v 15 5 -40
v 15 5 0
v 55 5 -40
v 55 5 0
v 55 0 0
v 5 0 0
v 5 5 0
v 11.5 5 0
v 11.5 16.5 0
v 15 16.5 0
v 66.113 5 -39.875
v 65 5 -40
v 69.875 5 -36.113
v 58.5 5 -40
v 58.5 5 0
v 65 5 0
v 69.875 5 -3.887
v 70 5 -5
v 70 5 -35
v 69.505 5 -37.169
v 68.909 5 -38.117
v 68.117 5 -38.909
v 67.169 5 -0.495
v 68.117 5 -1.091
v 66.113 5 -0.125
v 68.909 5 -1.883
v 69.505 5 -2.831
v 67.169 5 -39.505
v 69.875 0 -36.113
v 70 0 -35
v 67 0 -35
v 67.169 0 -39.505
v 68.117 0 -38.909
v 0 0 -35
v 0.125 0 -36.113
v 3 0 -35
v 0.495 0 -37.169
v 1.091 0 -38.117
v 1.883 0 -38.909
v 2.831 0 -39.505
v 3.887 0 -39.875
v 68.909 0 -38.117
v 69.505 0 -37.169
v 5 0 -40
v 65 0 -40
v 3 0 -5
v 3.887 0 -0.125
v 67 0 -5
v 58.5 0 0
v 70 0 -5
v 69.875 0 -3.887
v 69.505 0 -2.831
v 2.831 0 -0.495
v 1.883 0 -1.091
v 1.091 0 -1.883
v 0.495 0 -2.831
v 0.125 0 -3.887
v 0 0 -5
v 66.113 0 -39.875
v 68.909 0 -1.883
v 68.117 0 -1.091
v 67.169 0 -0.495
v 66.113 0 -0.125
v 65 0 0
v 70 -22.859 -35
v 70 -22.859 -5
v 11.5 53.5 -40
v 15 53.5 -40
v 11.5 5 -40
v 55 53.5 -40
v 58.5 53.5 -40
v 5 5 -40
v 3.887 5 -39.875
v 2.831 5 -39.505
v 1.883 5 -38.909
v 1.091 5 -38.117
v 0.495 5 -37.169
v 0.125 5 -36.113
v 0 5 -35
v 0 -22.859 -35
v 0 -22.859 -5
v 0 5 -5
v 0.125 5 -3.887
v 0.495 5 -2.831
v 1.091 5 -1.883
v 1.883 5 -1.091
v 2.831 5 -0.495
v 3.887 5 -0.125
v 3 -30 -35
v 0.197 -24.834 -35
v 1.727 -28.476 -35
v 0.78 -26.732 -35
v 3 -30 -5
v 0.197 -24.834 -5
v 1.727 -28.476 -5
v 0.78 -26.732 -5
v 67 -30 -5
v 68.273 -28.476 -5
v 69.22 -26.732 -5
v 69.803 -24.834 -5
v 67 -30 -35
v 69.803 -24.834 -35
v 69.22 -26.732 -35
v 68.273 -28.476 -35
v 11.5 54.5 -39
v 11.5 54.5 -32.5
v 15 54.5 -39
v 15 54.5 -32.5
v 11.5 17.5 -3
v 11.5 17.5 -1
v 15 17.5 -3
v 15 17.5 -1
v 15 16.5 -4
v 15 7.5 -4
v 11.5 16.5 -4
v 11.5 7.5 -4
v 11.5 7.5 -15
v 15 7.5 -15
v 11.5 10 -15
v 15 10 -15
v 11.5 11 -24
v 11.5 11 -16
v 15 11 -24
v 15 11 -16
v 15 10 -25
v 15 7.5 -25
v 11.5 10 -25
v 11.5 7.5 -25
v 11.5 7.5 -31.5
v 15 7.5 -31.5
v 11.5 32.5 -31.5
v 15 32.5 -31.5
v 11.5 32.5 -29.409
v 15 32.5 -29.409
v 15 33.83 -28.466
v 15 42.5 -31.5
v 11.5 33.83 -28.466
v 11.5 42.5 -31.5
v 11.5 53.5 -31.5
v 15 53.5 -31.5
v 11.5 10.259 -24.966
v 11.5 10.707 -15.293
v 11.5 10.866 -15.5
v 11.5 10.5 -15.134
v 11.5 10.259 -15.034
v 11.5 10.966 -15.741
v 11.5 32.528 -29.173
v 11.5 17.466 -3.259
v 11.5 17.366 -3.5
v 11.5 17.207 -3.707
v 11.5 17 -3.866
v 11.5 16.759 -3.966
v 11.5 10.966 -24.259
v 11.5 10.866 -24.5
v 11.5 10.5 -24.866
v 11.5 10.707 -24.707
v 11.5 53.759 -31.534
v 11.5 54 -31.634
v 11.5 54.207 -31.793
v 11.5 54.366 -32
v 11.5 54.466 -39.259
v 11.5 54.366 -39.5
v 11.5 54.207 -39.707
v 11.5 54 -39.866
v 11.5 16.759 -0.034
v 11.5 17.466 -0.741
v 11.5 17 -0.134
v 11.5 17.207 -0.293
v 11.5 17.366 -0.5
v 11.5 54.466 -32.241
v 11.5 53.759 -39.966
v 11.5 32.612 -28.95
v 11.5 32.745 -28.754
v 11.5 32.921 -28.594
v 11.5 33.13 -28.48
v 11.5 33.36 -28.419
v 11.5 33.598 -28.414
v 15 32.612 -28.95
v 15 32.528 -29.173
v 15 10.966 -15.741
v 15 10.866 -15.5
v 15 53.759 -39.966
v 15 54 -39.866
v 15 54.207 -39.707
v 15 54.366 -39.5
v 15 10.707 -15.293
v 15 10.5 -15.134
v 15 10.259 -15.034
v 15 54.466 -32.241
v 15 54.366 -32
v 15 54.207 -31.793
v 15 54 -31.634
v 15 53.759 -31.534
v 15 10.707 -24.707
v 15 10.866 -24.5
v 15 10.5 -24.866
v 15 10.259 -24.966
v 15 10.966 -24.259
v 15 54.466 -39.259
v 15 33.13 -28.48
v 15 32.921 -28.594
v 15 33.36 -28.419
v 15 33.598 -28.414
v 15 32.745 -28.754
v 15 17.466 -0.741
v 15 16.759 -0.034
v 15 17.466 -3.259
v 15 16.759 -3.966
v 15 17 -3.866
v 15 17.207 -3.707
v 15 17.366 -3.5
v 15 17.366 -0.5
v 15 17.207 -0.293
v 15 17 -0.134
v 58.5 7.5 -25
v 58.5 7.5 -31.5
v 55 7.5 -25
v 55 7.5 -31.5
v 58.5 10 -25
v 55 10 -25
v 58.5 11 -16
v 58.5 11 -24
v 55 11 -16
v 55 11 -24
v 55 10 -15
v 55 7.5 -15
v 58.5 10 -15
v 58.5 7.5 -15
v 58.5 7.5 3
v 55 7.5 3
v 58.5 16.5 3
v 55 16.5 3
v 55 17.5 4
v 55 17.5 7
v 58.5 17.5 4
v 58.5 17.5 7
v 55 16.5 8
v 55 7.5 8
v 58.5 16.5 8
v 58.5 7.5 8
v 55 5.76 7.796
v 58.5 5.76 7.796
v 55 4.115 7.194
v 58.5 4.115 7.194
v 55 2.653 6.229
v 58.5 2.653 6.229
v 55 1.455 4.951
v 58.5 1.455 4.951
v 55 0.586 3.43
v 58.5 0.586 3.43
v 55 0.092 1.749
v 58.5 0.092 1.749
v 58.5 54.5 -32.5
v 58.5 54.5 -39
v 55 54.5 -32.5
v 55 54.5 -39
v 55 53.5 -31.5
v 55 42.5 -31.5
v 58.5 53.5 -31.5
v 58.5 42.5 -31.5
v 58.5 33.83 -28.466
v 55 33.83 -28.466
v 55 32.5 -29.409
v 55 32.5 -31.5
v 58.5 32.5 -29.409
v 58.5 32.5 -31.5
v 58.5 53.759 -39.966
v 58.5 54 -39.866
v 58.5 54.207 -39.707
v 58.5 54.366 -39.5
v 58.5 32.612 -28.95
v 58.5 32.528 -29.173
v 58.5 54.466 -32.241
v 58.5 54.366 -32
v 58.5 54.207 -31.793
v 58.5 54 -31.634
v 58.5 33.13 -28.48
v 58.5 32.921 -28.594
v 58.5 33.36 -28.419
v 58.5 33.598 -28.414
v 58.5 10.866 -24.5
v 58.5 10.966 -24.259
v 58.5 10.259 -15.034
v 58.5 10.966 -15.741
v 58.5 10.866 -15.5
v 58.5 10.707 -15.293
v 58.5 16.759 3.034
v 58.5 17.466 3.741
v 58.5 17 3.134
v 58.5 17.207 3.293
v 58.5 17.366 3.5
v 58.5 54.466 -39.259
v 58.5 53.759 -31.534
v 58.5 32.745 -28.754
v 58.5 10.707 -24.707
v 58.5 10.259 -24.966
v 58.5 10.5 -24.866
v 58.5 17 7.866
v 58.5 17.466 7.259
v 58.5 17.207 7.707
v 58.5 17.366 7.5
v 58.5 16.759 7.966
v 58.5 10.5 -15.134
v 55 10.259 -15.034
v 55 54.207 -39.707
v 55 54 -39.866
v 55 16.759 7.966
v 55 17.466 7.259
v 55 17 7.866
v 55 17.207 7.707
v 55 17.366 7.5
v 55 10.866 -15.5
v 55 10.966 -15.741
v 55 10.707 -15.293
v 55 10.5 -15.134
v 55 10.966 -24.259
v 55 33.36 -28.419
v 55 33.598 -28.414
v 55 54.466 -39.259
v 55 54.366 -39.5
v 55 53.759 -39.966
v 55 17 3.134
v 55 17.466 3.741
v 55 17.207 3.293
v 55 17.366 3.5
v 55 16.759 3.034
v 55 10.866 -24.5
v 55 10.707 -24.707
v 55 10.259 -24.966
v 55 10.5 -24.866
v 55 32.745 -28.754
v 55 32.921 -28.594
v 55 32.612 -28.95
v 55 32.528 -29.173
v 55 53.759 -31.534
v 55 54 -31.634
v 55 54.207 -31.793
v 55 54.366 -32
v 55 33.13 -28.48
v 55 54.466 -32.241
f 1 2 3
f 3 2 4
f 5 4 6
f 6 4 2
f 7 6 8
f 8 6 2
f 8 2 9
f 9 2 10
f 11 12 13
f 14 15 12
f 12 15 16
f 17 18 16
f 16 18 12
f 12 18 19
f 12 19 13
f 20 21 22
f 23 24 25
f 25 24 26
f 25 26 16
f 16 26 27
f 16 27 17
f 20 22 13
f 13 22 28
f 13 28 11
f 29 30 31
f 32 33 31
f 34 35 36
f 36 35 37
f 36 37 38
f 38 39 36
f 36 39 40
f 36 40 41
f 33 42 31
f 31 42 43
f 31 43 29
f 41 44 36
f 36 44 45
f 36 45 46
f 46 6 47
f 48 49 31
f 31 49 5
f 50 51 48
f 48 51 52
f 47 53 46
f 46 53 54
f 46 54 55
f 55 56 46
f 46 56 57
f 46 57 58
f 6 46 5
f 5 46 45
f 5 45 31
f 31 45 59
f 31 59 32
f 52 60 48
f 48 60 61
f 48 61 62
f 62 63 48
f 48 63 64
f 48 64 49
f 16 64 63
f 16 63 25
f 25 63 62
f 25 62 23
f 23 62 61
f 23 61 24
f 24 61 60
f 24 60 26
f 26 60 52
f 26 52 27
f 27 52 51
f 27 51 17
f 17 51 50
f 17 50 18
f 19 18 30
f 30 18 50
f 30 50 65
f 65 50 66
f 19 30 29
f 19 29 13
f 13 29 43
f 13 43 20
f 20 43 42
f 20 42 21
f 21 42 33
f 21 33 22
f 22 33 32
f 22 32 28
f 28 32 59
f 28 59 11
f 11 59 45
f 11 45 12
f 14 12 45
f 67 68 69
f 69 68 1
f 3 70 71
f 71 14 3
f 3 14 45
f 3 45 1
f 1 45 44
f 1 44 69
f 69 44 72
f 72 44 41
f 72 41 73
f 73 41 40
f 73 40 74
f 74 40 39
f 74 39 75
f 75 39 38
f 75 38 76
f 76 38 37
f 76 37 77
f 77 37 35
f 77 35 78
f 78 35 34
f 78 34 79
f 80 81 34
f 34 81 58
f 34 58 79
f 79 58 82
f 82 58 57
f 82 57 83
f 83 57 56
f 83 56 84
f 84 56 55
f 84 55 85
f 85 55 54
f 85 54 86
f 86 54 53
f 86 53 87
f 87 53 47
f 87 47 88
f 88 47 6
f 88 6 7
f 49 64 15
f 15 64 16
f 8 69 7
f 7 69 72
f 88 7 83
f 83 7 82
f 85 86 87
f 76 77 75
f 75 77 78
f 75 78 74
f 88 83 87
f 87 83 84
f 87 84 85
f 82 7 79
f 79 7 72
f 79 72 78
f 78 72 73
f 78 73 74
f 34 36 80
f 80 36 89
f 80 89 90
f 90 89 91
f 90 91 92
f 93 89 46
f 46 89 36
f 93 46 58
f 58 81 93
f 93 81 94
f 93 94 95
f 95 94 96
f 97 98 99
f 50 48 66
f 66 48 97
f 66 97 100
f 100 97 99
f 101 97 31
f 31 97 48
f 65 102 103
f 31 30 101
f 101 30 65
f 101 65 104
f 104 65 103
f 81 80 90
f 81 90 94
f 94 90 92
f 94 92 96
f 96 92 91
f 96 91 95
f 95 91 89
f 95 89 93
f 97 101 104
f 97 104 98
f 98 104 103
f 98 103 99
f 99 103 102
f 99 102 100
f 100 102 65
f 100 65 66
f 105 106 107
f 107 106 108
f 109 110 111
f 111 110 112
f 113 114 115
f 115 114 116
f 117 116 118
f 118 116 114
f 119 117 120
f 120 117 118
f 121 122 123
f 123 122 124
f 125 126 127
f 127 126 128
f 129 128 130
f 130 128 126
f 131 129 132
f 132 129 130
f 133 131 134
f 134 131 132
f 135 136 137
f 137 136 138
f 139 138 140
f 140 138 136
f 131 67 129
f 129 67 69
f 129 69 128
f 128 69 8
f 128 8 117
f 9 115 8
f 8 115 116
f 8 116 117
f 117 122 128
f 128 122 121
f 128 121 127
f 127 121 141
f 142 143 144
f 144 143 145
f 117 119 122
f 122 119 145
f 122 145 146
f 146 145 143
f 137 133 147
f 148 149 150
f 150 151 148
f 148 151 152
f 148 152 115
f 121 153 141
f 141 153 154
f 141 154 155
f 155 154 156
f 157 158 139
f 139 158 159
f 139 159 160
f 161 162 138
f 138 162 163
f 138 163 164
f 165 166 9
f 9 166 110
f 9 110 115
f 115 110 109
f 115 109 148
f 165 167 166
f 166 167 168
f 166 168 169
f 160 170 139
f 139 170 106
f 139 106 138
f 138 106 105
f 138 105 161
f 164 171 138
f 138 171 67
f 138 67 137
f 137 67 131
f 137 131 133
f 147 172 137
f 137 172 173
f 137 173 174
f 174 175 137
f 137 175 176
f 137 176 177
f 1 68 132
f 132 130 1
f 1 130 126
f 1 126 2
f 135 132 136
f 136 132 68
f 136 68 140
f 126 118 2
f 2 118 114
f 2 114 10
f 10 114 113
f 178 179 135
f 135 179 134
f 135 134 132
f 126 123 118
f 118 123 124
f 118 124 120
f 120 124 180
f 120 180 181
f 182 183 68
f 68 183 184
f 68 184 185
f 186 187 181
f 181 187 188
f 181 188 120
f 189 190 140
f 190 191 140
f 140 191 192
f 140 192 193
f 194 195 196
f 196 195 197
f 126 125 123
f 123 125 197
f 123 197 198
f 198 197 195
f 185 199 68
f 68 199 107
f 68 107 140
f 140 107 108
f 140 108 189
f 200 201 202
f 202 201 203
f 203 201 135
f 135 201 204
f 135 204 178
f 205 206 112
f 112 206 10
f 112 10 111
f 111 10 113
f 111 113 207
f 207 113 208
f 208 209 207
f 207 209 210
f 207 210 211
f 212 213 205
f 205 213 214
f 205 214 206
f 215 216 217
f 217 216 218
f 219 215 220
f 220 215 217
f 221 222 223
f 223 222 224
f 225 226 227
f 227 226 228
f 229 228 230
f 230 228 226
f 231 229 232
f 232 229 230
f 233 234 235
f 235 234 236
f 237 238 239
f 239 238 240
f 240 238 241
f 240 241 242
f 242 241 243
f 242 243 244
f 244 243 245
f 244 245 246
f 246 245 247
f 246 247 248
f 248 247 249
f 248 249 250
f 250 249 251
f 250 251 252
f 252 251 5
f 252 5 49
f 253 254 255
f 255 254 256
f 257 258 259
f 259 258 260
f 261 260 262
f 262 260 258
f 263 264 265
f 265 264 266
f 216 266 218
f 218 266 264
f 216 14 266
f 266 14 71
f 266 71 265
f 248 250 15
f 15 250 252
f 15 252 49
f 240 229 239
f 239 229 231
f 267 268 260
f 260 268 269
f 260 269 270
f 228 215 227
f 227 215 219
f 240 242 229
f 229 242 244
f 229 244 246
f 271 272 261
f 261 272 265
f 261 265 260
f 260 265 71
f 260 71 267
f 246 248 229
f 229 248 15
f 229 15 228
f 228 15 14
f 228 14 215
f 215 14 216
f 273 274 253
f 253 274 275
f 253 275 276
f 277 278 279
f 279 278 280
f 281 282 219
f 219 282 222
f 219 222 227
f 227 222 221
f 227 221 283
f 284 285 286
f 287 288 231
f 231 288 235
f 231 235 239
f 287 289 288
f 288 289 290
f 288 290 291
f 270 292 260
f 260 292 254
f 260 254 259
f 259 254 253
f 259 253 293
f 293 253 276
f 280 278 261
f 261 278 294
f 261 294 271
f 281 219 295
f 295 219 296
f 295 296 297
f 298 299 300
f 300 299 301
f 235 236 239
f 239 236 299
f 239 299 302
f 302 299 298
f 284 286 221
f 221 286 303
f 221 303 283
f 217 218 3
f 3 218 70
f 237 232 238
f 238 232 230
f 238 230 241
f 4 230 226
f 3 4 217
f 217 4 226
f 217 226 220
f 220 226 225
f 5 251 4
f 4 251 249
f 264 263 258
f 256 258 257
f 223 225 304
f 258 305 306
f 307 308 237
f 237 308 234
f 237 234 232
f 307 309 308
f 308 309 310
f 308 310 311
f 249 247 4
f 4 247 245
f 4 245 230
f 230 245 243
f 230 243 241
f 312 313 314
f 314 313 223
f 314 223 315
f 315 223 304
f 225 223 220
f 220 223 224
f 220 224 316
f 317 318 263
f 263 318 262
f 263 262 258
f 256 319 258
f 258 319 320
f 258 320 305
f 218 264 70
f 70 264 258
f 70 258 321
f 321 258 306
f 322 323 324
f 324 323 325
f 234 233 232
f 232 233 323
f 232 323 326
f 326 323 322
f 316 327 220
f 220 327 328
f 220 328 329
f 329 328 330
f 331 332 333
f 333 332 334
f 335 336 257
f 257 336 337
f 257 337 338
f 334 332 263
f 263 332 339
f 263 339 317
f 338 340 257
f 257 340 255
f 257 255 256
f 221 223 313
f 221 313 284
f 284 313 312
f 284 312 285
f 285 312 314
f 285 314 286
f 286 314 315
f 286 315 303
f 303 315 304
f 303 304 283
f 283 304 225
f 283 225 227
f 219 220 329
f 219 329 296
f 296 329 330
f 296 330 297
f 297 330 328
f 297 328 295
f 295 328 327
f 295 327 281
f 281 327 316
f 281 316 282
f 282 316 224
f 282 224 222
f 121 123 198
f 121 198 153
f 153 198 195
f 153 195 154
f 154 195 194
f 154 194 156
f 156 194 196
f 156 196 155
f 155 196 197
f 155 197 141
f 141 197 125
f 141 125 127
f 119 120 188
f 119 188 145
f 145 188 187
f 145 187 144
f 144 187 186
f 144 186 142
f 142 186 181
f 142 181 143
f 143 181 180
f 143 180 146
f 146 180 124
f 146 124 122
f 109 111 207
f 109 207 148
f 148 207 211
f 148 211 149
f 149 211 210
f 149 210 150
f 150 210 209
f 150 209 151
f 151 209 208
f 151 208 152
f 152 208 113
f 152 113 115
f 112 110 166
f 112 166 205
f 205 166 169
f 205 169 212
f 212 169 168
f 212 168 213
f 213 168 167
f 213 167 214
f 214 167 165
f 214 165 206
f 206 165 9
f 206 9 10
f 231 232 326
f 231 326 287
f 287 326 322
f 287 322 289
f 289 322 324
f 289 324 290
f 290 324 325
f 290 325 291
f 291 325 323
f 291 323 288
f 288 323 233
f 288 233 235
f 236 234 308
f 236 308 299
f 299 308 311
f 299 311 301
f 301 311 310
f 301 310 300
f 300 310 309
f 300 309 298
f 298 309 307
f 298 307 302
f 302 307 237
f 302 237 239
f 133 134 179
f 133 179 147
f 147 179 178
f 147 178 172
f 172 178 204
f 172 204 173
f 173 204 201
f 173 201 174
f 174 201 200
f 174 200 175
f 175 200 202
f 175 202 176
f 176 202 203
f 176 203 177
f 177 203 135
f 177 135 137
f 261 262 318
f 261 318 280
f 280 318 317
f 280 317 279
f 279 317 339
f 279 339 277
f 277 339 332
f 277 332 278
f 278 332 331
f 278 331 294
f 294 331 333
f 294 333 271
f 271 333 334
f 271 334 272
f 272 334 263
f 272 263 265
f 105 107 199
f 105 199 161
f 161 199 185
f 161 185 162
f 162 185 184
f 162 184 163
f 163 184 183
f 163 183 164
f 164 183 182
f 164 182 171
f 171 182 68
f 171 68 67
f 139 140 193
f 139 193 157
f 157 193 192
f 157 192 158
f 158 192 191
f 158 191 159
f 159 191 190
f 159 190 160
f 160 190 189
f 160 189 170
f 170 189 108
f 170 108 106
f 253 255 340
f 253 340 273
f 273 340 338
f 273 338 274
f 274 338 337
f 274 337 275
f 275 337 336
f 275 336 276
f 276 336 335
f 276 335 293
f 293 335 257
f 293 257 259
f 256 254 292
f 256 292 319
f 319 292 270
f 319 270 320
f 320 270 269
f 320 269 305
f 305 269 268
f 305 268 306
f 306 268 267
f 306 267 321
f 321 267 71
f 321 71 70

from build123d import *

# Parameters (mm, degrees)
BOSS_EXTRUDE1_DEPTH = 5
SKETCH2_W           = 3
SKETCH2_H           = 30
BOSS_EXTRUDE2_DEPTH = 30
FILLET1_R           = 10
BOSS_EXTRUDE3_DEPTH = 3.5
BOSS_EXTRUDE4_DEPTH = 3.5
FILLET2_R           = 1


with BuildPart() as part:
    # Sketch1 → Boss-Extrude1 (new body)
    with BuildSketch(Plane(origin=(0, 0, 0), x_dir=(1, 0, 0), z_dir=(0, 1, 0))):
        with BuildLine():
            Line((5, 0), (65, 0))
            ThreePointArc((65, 0), (68.535533906, 1.464466094), (70, 5))
            Line((70, 5), (70, 35))
            ThreePointArc((70, 35), (68.535533906, 38.535533906), (65, 40))
            Line((65, 40), (5, 40))
            ThreePointArc((5, 40), (1.464466094, 38.535533906), (0, 35))
            Line((0, 35), (0, 5))
            ThreePointArc((0, 5), (1.464466094, 1.464466094), (5, 0))
        make_face()
    extrude(amount=BOSS_EXTRUDE1_DEPTH)

    # Sketch2 → Boss-Extrude2 (add)
    with BuildSketch(Plane.XZ):
        with Locations((1.5, -20)):
            Rectangle(SKETCH2_W, SKETCH2_H)
        with Locations((68.5, -20)):
            Rectangle(SKETCH2_W, SKETCH2_H)
    extrude(amount=BOSS_EXTRUDE2_DEPTH)

    # Fillet1
    # the kernel refuses this fillet: 10 mm, written as the material it takes off along each edge
    with BuildSketch(Plane(origin=(0, -30, -52.853571071), x_dir=(0, 1, 0), z_dir=(0, 0, 1))) as fillet1_piece_1:
        with BuildLine():
            CenterArc((7.141428429, -10), FILLET1_R, 90, 45.572995999)
            Line((0, -3), (-0.142828569, -2.86))
            ThreePointArc((-0.142828569, -2.86), (-0.2, -1.5), (-0.2, 0))
            Line((-0.2, 0), (0, 0.2))
            Line((0, 0.2), (7.141428429, 0.2))
            Line((7.141428429, 0.2), (7.141428429, 0))
        make_face()
    extrude(amount=65.707142143, mode=Mode.SUBTRACT)
    with BuildSketch(Plane(origin=(70, -30, -52.853571071), x_dir=(0, 1, 0), z_dir=(0, 0, 1))) as fillet1_piece_2:
        with BuildLine():
            CenterArc((7.141428429, 10), FILLET1_R, 224.427004001, 45.572995999)
            Line((0, 3), (-0.142828569, 2.86))
            ThreePointArc((-0.142828569, 2.86), (-0.2, 1.5), (-0.2, 0))
            Line((-0.2, 0), (0, -0.2))
            Line((0, -0.2), (7.141428429, -0.2))
            Line((7.141428429, -0.2), (7.141428429, 0))
        make_face()
    extrude(amount=65.707142143, mode=Mode.SUBTRACT)

    # Sketch3 → Boss-Extrude3 (add)
    with BuildSketch(Plane.ZY.offset(-15)):
        Polygon((-25, 7.5), (-31.5, 7.5), (-31.5, 32.5), (-28, 32.5), (-31.5, 42.5), (-31.5, 54.5), (-40, 54.5), (-40, 5), (0, 5), (0, 17.5), (-4, 17.5), (-4, 7.5), (-15, 7.5), (-15, 11), (-25, 11), align=None)
    extrude(amount=BOSS_EXTRUDE3_DEPTH)

    # Sketch4 → Boss-Extrude4 (add)
    with BuildSketch(Plane.ZY.offset(-55)):
        with BuildLine():
            Line((-31.5, 7.5), (-31.5, 32.5))
            Line((-31.5, 32.5), (-28, 32.5))
            Line((-28, 32.5), (-31.5, 42.5))
            Line((-31.5, 42.5), (-31.5, 54.5))
            Line((-31.5, 54.5), (-40, 54.5))
            Line((-40, 54.5), (-40, 5))
            Line((-40, 5), (0, 5))
            Line((0, 5), (0, 0))
            ThreePointArc((0, 0), (5.624620047, 2.01707195), (8, 7.5))
            Line((8, 7.5), (8, 17.5))
            Line((8, 17.5), (3, 17.5))
            Line((3, 17.5), (3, 7.5))
            Line((3, 7.5), (-15, 7.5))
            Line((-15, 7.5), (-15, 11))
            Line((-15, 11), (-25, 11))
            Line((-25, 11), (-25, 7.5))
            Line((-25, 7.5), (-31.5, 7.5))
        make_face()
    extrude(amount=-BOSS_EXTRUDE4_DEPTH)

    # Fillet2
    fillet2_edges = [part.edges().sort_by_distance(p)[0] for p in [
        (56.75, 17.5, 3),
        (56.75, 17.5, 8),
        (56.75, 54.5, -40),
        (56.75, 54.5, -31.5),
        (56.75, 32.5, -28),
        (13.25, 54.5, -31.5),
        (13.25, 54.5, -40),
        (13.25, 17.5, 0),
        (13.25, 17.5, -4),
        (13.25, 11, -15),
        (13.25, 11, -25),
        (13.25, 32.5, -28),
        (56.75, 11, -25),
        (56.75, 11, -15),
    ]]
    fillet(fillet2_edges, radius=FILLET2_R)


solid = part.part
